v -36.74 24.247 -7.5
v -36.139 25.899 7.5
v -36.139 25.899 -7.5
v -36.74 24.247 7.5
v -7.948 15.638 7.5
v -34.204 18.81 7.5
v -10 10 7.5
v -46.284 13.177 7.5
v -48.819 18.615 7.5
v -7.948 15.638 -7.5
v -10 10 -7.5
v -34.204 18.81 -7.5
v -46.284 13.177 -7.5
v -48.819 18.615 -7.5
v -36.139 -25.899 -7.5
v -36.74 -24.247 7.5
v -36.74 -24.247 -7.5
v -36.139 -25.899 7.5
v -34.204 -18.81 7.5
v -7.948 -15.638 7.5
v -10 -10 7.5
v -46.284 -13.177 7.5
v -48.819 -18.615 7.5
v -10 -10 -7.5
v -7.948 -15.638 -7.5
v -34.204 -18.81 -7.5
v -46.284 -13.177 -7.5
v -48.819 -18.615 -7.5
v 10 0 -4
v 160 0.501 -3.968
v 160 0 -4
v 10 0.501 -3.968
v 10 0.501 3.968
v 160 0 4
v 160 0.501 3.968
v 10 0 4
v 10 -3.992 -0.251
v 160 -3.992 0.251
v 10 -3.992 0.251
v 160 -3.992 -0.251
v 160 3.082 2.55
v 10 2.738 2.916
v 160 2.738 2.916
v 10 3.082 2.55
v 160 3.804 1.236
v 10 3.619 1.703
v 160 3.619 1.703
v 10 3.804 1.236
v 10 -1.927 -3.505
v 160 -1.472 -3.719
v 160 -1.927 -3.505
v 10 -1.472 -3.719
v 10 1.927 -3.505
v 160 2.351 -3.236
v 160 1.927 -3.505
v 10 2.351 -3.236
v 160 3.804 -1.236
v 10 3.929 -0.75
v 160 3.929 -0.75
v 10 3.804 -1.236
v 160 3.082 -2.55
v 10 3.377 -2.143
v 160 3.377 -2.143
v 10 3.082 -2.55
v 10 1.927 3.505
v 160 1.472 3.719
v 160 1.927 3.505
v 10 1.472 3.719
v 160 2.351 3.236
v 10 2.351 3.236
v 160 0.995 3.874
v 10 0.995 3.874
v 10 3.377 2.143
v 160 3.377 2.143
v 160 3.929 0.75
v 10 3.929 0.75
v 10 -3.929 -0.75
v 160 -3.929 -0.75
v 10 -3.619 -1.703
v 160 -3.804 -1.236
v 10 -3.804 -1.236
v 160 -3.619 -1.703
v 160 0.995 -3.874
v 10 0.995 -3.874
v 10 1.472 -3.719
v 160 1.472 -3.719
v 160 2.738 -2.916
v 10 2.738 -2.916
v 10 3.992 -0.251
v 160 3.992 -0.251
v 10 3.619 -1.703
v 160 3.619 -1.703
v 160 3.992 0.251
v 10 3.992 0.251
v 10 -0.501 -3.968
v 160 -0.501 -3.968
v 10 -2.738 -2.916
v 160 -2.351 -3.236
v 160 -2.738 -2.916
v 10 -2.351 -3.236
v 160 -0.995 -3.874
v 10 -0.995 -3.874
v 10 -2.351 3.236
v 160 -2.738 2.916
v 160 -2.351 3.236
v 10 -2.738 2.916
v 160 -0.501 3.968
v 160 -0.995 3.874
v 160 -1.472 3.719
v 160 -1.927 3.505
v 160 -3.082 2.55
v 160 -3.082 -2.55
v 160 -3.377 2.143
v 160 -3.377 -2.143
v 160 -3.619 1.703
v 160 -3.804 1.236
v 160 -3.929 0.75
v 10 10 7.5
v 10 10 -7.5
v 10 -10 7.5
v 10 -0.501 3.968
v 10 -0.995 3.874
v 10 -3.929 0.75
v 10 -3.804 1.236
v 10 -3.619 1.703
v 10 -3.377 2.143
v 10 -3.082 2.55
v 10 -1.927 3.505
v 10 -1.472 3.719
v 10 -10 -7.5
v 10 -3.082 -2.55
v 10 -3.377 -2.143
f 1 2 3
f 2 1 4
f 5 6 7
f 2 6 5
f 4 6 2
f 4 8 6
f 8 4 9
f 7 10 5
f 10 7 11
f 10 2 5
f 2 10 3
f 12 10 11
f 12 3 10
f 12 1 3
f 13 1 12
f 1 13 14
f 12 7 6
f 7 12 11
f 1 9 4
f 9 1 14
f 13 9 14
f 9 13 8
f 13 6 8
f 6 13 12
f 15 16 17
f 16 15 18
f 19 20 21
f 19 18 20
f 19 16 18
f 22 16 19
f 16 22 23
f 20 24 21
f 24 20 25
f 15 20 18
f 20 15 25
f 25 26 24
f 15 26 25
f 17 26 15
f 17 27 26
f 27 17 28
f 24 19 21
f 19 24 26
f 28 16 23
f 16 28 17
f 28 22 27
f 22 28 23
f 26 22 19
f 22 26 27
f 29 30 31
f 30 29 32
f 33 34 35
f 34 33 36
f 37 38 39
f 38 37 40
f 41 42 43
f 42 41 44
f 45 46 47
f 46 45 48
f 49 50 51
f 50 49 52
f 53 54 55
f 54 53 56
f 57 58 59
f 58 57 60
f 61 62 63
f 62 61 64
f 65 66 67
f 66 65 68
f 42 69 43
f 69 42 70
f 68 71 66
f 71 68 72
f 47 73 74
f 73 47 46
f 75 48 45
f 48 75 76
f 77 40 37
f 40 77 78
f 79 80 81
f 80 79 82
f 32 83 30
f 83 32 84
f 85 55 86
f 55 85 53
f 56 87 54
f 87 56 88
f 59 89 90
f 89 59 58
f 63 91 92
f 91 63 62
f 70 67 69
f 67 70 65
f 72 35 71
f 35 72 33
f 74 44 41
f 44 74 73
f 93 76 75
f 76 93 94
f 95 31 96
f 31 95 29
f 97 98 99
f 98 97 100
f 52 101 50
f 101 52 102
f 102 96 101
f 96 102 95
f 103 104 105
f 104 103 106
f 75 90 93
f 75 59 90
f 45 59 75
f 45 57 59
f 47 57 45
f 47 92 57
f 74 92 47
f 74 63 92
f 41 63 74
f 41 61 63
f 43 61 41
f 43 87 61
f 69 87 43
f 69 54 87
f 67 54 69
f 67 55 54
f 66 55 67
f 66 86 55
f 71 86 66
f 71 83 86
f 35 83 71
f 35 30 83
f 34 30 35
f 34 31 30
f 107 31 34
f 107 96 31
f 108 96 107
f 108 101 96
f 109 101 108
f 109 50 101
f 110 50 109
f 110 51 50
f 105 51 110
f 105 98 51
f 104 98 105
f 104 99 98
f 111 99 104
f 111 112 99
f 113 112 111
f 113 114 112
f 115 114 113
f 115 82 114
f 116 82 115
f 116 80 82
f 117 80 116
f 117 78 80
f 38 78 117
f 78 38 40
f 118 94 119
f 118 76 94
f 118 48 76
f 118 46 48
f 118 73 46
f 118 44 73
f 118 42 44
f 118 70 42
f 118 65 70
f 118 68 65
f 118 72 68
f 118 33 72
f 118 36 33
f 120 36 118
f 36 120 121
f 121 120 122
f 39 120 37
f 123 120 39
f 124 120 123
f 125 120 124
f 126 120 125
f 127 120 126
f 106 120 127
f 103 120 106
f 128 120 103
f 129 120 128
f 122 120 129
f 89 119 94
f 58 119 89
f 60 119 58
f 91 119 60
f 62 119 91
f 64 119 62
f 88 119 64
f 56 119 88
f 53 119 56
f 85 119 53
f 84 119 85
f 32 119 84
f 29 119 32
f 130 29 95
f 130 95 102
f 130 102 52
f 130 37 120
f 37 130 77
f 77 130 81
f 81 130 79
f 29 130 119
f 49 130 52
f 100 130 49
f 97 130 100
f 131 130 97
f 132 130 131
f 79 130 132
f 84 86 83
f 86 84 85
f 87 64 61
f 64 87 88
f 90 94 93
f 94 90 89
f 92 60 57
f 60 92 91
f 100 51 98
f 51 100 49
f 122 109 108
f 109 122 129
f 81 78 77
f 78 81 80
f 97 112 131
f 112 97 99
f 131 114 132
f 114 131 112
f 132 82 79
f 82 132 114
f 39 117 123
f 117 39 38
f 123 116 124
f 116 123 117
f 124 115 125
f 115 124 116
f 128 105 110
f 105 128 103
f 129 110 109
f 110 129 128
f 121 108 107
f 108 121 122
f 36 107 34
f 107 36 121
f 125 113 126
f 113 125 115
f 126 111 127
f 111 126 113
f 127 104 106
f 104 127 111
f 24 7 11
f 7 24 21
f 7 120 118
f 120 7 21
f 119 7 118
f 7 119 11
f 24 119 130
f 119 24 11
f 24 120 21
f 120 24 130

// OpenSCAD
/*
Fabrício Gutierrez Saavedra - RM97631
Márcio Gastaldi - RM98811
Arthur Bessa Pian - RM99215
Davi Desenzi - RM550849
João Victor - RM551410
*/

$fn = 50;

angulo_abertura = 20;

haste_comprimento = 150;
haste_diametro = 8;

base_x = 20;
base_y = 20;
base_z = 15;

color("#FFD700") {

    translate([base_x/2, 0, 0])
    rotate([0, 90, 0])
    cylinder(h=haste_comprimento, d=haste_diametro, center=false);

    cube([base_x, base_y, base_z], center=true);

    translate([-base_x/2, base_y/2, 0])
    rotate([0, 0, -angulo_abertura])
    Garra();

    translate([-base_x/2, -base_y/2, 0])
    rotate([0, 0, angulo_abertura])
    mirror([0, 1, 0])
    Garra();
}

module Garra() {
    union() {
        translate([-15, 3, 0])
        cube([30, 6, base_z], center=true);

        translate([-32, -2, 0])
        rotate([0, 0, 45])
        cube([15, 6, base_z], center=true);
    }
}
